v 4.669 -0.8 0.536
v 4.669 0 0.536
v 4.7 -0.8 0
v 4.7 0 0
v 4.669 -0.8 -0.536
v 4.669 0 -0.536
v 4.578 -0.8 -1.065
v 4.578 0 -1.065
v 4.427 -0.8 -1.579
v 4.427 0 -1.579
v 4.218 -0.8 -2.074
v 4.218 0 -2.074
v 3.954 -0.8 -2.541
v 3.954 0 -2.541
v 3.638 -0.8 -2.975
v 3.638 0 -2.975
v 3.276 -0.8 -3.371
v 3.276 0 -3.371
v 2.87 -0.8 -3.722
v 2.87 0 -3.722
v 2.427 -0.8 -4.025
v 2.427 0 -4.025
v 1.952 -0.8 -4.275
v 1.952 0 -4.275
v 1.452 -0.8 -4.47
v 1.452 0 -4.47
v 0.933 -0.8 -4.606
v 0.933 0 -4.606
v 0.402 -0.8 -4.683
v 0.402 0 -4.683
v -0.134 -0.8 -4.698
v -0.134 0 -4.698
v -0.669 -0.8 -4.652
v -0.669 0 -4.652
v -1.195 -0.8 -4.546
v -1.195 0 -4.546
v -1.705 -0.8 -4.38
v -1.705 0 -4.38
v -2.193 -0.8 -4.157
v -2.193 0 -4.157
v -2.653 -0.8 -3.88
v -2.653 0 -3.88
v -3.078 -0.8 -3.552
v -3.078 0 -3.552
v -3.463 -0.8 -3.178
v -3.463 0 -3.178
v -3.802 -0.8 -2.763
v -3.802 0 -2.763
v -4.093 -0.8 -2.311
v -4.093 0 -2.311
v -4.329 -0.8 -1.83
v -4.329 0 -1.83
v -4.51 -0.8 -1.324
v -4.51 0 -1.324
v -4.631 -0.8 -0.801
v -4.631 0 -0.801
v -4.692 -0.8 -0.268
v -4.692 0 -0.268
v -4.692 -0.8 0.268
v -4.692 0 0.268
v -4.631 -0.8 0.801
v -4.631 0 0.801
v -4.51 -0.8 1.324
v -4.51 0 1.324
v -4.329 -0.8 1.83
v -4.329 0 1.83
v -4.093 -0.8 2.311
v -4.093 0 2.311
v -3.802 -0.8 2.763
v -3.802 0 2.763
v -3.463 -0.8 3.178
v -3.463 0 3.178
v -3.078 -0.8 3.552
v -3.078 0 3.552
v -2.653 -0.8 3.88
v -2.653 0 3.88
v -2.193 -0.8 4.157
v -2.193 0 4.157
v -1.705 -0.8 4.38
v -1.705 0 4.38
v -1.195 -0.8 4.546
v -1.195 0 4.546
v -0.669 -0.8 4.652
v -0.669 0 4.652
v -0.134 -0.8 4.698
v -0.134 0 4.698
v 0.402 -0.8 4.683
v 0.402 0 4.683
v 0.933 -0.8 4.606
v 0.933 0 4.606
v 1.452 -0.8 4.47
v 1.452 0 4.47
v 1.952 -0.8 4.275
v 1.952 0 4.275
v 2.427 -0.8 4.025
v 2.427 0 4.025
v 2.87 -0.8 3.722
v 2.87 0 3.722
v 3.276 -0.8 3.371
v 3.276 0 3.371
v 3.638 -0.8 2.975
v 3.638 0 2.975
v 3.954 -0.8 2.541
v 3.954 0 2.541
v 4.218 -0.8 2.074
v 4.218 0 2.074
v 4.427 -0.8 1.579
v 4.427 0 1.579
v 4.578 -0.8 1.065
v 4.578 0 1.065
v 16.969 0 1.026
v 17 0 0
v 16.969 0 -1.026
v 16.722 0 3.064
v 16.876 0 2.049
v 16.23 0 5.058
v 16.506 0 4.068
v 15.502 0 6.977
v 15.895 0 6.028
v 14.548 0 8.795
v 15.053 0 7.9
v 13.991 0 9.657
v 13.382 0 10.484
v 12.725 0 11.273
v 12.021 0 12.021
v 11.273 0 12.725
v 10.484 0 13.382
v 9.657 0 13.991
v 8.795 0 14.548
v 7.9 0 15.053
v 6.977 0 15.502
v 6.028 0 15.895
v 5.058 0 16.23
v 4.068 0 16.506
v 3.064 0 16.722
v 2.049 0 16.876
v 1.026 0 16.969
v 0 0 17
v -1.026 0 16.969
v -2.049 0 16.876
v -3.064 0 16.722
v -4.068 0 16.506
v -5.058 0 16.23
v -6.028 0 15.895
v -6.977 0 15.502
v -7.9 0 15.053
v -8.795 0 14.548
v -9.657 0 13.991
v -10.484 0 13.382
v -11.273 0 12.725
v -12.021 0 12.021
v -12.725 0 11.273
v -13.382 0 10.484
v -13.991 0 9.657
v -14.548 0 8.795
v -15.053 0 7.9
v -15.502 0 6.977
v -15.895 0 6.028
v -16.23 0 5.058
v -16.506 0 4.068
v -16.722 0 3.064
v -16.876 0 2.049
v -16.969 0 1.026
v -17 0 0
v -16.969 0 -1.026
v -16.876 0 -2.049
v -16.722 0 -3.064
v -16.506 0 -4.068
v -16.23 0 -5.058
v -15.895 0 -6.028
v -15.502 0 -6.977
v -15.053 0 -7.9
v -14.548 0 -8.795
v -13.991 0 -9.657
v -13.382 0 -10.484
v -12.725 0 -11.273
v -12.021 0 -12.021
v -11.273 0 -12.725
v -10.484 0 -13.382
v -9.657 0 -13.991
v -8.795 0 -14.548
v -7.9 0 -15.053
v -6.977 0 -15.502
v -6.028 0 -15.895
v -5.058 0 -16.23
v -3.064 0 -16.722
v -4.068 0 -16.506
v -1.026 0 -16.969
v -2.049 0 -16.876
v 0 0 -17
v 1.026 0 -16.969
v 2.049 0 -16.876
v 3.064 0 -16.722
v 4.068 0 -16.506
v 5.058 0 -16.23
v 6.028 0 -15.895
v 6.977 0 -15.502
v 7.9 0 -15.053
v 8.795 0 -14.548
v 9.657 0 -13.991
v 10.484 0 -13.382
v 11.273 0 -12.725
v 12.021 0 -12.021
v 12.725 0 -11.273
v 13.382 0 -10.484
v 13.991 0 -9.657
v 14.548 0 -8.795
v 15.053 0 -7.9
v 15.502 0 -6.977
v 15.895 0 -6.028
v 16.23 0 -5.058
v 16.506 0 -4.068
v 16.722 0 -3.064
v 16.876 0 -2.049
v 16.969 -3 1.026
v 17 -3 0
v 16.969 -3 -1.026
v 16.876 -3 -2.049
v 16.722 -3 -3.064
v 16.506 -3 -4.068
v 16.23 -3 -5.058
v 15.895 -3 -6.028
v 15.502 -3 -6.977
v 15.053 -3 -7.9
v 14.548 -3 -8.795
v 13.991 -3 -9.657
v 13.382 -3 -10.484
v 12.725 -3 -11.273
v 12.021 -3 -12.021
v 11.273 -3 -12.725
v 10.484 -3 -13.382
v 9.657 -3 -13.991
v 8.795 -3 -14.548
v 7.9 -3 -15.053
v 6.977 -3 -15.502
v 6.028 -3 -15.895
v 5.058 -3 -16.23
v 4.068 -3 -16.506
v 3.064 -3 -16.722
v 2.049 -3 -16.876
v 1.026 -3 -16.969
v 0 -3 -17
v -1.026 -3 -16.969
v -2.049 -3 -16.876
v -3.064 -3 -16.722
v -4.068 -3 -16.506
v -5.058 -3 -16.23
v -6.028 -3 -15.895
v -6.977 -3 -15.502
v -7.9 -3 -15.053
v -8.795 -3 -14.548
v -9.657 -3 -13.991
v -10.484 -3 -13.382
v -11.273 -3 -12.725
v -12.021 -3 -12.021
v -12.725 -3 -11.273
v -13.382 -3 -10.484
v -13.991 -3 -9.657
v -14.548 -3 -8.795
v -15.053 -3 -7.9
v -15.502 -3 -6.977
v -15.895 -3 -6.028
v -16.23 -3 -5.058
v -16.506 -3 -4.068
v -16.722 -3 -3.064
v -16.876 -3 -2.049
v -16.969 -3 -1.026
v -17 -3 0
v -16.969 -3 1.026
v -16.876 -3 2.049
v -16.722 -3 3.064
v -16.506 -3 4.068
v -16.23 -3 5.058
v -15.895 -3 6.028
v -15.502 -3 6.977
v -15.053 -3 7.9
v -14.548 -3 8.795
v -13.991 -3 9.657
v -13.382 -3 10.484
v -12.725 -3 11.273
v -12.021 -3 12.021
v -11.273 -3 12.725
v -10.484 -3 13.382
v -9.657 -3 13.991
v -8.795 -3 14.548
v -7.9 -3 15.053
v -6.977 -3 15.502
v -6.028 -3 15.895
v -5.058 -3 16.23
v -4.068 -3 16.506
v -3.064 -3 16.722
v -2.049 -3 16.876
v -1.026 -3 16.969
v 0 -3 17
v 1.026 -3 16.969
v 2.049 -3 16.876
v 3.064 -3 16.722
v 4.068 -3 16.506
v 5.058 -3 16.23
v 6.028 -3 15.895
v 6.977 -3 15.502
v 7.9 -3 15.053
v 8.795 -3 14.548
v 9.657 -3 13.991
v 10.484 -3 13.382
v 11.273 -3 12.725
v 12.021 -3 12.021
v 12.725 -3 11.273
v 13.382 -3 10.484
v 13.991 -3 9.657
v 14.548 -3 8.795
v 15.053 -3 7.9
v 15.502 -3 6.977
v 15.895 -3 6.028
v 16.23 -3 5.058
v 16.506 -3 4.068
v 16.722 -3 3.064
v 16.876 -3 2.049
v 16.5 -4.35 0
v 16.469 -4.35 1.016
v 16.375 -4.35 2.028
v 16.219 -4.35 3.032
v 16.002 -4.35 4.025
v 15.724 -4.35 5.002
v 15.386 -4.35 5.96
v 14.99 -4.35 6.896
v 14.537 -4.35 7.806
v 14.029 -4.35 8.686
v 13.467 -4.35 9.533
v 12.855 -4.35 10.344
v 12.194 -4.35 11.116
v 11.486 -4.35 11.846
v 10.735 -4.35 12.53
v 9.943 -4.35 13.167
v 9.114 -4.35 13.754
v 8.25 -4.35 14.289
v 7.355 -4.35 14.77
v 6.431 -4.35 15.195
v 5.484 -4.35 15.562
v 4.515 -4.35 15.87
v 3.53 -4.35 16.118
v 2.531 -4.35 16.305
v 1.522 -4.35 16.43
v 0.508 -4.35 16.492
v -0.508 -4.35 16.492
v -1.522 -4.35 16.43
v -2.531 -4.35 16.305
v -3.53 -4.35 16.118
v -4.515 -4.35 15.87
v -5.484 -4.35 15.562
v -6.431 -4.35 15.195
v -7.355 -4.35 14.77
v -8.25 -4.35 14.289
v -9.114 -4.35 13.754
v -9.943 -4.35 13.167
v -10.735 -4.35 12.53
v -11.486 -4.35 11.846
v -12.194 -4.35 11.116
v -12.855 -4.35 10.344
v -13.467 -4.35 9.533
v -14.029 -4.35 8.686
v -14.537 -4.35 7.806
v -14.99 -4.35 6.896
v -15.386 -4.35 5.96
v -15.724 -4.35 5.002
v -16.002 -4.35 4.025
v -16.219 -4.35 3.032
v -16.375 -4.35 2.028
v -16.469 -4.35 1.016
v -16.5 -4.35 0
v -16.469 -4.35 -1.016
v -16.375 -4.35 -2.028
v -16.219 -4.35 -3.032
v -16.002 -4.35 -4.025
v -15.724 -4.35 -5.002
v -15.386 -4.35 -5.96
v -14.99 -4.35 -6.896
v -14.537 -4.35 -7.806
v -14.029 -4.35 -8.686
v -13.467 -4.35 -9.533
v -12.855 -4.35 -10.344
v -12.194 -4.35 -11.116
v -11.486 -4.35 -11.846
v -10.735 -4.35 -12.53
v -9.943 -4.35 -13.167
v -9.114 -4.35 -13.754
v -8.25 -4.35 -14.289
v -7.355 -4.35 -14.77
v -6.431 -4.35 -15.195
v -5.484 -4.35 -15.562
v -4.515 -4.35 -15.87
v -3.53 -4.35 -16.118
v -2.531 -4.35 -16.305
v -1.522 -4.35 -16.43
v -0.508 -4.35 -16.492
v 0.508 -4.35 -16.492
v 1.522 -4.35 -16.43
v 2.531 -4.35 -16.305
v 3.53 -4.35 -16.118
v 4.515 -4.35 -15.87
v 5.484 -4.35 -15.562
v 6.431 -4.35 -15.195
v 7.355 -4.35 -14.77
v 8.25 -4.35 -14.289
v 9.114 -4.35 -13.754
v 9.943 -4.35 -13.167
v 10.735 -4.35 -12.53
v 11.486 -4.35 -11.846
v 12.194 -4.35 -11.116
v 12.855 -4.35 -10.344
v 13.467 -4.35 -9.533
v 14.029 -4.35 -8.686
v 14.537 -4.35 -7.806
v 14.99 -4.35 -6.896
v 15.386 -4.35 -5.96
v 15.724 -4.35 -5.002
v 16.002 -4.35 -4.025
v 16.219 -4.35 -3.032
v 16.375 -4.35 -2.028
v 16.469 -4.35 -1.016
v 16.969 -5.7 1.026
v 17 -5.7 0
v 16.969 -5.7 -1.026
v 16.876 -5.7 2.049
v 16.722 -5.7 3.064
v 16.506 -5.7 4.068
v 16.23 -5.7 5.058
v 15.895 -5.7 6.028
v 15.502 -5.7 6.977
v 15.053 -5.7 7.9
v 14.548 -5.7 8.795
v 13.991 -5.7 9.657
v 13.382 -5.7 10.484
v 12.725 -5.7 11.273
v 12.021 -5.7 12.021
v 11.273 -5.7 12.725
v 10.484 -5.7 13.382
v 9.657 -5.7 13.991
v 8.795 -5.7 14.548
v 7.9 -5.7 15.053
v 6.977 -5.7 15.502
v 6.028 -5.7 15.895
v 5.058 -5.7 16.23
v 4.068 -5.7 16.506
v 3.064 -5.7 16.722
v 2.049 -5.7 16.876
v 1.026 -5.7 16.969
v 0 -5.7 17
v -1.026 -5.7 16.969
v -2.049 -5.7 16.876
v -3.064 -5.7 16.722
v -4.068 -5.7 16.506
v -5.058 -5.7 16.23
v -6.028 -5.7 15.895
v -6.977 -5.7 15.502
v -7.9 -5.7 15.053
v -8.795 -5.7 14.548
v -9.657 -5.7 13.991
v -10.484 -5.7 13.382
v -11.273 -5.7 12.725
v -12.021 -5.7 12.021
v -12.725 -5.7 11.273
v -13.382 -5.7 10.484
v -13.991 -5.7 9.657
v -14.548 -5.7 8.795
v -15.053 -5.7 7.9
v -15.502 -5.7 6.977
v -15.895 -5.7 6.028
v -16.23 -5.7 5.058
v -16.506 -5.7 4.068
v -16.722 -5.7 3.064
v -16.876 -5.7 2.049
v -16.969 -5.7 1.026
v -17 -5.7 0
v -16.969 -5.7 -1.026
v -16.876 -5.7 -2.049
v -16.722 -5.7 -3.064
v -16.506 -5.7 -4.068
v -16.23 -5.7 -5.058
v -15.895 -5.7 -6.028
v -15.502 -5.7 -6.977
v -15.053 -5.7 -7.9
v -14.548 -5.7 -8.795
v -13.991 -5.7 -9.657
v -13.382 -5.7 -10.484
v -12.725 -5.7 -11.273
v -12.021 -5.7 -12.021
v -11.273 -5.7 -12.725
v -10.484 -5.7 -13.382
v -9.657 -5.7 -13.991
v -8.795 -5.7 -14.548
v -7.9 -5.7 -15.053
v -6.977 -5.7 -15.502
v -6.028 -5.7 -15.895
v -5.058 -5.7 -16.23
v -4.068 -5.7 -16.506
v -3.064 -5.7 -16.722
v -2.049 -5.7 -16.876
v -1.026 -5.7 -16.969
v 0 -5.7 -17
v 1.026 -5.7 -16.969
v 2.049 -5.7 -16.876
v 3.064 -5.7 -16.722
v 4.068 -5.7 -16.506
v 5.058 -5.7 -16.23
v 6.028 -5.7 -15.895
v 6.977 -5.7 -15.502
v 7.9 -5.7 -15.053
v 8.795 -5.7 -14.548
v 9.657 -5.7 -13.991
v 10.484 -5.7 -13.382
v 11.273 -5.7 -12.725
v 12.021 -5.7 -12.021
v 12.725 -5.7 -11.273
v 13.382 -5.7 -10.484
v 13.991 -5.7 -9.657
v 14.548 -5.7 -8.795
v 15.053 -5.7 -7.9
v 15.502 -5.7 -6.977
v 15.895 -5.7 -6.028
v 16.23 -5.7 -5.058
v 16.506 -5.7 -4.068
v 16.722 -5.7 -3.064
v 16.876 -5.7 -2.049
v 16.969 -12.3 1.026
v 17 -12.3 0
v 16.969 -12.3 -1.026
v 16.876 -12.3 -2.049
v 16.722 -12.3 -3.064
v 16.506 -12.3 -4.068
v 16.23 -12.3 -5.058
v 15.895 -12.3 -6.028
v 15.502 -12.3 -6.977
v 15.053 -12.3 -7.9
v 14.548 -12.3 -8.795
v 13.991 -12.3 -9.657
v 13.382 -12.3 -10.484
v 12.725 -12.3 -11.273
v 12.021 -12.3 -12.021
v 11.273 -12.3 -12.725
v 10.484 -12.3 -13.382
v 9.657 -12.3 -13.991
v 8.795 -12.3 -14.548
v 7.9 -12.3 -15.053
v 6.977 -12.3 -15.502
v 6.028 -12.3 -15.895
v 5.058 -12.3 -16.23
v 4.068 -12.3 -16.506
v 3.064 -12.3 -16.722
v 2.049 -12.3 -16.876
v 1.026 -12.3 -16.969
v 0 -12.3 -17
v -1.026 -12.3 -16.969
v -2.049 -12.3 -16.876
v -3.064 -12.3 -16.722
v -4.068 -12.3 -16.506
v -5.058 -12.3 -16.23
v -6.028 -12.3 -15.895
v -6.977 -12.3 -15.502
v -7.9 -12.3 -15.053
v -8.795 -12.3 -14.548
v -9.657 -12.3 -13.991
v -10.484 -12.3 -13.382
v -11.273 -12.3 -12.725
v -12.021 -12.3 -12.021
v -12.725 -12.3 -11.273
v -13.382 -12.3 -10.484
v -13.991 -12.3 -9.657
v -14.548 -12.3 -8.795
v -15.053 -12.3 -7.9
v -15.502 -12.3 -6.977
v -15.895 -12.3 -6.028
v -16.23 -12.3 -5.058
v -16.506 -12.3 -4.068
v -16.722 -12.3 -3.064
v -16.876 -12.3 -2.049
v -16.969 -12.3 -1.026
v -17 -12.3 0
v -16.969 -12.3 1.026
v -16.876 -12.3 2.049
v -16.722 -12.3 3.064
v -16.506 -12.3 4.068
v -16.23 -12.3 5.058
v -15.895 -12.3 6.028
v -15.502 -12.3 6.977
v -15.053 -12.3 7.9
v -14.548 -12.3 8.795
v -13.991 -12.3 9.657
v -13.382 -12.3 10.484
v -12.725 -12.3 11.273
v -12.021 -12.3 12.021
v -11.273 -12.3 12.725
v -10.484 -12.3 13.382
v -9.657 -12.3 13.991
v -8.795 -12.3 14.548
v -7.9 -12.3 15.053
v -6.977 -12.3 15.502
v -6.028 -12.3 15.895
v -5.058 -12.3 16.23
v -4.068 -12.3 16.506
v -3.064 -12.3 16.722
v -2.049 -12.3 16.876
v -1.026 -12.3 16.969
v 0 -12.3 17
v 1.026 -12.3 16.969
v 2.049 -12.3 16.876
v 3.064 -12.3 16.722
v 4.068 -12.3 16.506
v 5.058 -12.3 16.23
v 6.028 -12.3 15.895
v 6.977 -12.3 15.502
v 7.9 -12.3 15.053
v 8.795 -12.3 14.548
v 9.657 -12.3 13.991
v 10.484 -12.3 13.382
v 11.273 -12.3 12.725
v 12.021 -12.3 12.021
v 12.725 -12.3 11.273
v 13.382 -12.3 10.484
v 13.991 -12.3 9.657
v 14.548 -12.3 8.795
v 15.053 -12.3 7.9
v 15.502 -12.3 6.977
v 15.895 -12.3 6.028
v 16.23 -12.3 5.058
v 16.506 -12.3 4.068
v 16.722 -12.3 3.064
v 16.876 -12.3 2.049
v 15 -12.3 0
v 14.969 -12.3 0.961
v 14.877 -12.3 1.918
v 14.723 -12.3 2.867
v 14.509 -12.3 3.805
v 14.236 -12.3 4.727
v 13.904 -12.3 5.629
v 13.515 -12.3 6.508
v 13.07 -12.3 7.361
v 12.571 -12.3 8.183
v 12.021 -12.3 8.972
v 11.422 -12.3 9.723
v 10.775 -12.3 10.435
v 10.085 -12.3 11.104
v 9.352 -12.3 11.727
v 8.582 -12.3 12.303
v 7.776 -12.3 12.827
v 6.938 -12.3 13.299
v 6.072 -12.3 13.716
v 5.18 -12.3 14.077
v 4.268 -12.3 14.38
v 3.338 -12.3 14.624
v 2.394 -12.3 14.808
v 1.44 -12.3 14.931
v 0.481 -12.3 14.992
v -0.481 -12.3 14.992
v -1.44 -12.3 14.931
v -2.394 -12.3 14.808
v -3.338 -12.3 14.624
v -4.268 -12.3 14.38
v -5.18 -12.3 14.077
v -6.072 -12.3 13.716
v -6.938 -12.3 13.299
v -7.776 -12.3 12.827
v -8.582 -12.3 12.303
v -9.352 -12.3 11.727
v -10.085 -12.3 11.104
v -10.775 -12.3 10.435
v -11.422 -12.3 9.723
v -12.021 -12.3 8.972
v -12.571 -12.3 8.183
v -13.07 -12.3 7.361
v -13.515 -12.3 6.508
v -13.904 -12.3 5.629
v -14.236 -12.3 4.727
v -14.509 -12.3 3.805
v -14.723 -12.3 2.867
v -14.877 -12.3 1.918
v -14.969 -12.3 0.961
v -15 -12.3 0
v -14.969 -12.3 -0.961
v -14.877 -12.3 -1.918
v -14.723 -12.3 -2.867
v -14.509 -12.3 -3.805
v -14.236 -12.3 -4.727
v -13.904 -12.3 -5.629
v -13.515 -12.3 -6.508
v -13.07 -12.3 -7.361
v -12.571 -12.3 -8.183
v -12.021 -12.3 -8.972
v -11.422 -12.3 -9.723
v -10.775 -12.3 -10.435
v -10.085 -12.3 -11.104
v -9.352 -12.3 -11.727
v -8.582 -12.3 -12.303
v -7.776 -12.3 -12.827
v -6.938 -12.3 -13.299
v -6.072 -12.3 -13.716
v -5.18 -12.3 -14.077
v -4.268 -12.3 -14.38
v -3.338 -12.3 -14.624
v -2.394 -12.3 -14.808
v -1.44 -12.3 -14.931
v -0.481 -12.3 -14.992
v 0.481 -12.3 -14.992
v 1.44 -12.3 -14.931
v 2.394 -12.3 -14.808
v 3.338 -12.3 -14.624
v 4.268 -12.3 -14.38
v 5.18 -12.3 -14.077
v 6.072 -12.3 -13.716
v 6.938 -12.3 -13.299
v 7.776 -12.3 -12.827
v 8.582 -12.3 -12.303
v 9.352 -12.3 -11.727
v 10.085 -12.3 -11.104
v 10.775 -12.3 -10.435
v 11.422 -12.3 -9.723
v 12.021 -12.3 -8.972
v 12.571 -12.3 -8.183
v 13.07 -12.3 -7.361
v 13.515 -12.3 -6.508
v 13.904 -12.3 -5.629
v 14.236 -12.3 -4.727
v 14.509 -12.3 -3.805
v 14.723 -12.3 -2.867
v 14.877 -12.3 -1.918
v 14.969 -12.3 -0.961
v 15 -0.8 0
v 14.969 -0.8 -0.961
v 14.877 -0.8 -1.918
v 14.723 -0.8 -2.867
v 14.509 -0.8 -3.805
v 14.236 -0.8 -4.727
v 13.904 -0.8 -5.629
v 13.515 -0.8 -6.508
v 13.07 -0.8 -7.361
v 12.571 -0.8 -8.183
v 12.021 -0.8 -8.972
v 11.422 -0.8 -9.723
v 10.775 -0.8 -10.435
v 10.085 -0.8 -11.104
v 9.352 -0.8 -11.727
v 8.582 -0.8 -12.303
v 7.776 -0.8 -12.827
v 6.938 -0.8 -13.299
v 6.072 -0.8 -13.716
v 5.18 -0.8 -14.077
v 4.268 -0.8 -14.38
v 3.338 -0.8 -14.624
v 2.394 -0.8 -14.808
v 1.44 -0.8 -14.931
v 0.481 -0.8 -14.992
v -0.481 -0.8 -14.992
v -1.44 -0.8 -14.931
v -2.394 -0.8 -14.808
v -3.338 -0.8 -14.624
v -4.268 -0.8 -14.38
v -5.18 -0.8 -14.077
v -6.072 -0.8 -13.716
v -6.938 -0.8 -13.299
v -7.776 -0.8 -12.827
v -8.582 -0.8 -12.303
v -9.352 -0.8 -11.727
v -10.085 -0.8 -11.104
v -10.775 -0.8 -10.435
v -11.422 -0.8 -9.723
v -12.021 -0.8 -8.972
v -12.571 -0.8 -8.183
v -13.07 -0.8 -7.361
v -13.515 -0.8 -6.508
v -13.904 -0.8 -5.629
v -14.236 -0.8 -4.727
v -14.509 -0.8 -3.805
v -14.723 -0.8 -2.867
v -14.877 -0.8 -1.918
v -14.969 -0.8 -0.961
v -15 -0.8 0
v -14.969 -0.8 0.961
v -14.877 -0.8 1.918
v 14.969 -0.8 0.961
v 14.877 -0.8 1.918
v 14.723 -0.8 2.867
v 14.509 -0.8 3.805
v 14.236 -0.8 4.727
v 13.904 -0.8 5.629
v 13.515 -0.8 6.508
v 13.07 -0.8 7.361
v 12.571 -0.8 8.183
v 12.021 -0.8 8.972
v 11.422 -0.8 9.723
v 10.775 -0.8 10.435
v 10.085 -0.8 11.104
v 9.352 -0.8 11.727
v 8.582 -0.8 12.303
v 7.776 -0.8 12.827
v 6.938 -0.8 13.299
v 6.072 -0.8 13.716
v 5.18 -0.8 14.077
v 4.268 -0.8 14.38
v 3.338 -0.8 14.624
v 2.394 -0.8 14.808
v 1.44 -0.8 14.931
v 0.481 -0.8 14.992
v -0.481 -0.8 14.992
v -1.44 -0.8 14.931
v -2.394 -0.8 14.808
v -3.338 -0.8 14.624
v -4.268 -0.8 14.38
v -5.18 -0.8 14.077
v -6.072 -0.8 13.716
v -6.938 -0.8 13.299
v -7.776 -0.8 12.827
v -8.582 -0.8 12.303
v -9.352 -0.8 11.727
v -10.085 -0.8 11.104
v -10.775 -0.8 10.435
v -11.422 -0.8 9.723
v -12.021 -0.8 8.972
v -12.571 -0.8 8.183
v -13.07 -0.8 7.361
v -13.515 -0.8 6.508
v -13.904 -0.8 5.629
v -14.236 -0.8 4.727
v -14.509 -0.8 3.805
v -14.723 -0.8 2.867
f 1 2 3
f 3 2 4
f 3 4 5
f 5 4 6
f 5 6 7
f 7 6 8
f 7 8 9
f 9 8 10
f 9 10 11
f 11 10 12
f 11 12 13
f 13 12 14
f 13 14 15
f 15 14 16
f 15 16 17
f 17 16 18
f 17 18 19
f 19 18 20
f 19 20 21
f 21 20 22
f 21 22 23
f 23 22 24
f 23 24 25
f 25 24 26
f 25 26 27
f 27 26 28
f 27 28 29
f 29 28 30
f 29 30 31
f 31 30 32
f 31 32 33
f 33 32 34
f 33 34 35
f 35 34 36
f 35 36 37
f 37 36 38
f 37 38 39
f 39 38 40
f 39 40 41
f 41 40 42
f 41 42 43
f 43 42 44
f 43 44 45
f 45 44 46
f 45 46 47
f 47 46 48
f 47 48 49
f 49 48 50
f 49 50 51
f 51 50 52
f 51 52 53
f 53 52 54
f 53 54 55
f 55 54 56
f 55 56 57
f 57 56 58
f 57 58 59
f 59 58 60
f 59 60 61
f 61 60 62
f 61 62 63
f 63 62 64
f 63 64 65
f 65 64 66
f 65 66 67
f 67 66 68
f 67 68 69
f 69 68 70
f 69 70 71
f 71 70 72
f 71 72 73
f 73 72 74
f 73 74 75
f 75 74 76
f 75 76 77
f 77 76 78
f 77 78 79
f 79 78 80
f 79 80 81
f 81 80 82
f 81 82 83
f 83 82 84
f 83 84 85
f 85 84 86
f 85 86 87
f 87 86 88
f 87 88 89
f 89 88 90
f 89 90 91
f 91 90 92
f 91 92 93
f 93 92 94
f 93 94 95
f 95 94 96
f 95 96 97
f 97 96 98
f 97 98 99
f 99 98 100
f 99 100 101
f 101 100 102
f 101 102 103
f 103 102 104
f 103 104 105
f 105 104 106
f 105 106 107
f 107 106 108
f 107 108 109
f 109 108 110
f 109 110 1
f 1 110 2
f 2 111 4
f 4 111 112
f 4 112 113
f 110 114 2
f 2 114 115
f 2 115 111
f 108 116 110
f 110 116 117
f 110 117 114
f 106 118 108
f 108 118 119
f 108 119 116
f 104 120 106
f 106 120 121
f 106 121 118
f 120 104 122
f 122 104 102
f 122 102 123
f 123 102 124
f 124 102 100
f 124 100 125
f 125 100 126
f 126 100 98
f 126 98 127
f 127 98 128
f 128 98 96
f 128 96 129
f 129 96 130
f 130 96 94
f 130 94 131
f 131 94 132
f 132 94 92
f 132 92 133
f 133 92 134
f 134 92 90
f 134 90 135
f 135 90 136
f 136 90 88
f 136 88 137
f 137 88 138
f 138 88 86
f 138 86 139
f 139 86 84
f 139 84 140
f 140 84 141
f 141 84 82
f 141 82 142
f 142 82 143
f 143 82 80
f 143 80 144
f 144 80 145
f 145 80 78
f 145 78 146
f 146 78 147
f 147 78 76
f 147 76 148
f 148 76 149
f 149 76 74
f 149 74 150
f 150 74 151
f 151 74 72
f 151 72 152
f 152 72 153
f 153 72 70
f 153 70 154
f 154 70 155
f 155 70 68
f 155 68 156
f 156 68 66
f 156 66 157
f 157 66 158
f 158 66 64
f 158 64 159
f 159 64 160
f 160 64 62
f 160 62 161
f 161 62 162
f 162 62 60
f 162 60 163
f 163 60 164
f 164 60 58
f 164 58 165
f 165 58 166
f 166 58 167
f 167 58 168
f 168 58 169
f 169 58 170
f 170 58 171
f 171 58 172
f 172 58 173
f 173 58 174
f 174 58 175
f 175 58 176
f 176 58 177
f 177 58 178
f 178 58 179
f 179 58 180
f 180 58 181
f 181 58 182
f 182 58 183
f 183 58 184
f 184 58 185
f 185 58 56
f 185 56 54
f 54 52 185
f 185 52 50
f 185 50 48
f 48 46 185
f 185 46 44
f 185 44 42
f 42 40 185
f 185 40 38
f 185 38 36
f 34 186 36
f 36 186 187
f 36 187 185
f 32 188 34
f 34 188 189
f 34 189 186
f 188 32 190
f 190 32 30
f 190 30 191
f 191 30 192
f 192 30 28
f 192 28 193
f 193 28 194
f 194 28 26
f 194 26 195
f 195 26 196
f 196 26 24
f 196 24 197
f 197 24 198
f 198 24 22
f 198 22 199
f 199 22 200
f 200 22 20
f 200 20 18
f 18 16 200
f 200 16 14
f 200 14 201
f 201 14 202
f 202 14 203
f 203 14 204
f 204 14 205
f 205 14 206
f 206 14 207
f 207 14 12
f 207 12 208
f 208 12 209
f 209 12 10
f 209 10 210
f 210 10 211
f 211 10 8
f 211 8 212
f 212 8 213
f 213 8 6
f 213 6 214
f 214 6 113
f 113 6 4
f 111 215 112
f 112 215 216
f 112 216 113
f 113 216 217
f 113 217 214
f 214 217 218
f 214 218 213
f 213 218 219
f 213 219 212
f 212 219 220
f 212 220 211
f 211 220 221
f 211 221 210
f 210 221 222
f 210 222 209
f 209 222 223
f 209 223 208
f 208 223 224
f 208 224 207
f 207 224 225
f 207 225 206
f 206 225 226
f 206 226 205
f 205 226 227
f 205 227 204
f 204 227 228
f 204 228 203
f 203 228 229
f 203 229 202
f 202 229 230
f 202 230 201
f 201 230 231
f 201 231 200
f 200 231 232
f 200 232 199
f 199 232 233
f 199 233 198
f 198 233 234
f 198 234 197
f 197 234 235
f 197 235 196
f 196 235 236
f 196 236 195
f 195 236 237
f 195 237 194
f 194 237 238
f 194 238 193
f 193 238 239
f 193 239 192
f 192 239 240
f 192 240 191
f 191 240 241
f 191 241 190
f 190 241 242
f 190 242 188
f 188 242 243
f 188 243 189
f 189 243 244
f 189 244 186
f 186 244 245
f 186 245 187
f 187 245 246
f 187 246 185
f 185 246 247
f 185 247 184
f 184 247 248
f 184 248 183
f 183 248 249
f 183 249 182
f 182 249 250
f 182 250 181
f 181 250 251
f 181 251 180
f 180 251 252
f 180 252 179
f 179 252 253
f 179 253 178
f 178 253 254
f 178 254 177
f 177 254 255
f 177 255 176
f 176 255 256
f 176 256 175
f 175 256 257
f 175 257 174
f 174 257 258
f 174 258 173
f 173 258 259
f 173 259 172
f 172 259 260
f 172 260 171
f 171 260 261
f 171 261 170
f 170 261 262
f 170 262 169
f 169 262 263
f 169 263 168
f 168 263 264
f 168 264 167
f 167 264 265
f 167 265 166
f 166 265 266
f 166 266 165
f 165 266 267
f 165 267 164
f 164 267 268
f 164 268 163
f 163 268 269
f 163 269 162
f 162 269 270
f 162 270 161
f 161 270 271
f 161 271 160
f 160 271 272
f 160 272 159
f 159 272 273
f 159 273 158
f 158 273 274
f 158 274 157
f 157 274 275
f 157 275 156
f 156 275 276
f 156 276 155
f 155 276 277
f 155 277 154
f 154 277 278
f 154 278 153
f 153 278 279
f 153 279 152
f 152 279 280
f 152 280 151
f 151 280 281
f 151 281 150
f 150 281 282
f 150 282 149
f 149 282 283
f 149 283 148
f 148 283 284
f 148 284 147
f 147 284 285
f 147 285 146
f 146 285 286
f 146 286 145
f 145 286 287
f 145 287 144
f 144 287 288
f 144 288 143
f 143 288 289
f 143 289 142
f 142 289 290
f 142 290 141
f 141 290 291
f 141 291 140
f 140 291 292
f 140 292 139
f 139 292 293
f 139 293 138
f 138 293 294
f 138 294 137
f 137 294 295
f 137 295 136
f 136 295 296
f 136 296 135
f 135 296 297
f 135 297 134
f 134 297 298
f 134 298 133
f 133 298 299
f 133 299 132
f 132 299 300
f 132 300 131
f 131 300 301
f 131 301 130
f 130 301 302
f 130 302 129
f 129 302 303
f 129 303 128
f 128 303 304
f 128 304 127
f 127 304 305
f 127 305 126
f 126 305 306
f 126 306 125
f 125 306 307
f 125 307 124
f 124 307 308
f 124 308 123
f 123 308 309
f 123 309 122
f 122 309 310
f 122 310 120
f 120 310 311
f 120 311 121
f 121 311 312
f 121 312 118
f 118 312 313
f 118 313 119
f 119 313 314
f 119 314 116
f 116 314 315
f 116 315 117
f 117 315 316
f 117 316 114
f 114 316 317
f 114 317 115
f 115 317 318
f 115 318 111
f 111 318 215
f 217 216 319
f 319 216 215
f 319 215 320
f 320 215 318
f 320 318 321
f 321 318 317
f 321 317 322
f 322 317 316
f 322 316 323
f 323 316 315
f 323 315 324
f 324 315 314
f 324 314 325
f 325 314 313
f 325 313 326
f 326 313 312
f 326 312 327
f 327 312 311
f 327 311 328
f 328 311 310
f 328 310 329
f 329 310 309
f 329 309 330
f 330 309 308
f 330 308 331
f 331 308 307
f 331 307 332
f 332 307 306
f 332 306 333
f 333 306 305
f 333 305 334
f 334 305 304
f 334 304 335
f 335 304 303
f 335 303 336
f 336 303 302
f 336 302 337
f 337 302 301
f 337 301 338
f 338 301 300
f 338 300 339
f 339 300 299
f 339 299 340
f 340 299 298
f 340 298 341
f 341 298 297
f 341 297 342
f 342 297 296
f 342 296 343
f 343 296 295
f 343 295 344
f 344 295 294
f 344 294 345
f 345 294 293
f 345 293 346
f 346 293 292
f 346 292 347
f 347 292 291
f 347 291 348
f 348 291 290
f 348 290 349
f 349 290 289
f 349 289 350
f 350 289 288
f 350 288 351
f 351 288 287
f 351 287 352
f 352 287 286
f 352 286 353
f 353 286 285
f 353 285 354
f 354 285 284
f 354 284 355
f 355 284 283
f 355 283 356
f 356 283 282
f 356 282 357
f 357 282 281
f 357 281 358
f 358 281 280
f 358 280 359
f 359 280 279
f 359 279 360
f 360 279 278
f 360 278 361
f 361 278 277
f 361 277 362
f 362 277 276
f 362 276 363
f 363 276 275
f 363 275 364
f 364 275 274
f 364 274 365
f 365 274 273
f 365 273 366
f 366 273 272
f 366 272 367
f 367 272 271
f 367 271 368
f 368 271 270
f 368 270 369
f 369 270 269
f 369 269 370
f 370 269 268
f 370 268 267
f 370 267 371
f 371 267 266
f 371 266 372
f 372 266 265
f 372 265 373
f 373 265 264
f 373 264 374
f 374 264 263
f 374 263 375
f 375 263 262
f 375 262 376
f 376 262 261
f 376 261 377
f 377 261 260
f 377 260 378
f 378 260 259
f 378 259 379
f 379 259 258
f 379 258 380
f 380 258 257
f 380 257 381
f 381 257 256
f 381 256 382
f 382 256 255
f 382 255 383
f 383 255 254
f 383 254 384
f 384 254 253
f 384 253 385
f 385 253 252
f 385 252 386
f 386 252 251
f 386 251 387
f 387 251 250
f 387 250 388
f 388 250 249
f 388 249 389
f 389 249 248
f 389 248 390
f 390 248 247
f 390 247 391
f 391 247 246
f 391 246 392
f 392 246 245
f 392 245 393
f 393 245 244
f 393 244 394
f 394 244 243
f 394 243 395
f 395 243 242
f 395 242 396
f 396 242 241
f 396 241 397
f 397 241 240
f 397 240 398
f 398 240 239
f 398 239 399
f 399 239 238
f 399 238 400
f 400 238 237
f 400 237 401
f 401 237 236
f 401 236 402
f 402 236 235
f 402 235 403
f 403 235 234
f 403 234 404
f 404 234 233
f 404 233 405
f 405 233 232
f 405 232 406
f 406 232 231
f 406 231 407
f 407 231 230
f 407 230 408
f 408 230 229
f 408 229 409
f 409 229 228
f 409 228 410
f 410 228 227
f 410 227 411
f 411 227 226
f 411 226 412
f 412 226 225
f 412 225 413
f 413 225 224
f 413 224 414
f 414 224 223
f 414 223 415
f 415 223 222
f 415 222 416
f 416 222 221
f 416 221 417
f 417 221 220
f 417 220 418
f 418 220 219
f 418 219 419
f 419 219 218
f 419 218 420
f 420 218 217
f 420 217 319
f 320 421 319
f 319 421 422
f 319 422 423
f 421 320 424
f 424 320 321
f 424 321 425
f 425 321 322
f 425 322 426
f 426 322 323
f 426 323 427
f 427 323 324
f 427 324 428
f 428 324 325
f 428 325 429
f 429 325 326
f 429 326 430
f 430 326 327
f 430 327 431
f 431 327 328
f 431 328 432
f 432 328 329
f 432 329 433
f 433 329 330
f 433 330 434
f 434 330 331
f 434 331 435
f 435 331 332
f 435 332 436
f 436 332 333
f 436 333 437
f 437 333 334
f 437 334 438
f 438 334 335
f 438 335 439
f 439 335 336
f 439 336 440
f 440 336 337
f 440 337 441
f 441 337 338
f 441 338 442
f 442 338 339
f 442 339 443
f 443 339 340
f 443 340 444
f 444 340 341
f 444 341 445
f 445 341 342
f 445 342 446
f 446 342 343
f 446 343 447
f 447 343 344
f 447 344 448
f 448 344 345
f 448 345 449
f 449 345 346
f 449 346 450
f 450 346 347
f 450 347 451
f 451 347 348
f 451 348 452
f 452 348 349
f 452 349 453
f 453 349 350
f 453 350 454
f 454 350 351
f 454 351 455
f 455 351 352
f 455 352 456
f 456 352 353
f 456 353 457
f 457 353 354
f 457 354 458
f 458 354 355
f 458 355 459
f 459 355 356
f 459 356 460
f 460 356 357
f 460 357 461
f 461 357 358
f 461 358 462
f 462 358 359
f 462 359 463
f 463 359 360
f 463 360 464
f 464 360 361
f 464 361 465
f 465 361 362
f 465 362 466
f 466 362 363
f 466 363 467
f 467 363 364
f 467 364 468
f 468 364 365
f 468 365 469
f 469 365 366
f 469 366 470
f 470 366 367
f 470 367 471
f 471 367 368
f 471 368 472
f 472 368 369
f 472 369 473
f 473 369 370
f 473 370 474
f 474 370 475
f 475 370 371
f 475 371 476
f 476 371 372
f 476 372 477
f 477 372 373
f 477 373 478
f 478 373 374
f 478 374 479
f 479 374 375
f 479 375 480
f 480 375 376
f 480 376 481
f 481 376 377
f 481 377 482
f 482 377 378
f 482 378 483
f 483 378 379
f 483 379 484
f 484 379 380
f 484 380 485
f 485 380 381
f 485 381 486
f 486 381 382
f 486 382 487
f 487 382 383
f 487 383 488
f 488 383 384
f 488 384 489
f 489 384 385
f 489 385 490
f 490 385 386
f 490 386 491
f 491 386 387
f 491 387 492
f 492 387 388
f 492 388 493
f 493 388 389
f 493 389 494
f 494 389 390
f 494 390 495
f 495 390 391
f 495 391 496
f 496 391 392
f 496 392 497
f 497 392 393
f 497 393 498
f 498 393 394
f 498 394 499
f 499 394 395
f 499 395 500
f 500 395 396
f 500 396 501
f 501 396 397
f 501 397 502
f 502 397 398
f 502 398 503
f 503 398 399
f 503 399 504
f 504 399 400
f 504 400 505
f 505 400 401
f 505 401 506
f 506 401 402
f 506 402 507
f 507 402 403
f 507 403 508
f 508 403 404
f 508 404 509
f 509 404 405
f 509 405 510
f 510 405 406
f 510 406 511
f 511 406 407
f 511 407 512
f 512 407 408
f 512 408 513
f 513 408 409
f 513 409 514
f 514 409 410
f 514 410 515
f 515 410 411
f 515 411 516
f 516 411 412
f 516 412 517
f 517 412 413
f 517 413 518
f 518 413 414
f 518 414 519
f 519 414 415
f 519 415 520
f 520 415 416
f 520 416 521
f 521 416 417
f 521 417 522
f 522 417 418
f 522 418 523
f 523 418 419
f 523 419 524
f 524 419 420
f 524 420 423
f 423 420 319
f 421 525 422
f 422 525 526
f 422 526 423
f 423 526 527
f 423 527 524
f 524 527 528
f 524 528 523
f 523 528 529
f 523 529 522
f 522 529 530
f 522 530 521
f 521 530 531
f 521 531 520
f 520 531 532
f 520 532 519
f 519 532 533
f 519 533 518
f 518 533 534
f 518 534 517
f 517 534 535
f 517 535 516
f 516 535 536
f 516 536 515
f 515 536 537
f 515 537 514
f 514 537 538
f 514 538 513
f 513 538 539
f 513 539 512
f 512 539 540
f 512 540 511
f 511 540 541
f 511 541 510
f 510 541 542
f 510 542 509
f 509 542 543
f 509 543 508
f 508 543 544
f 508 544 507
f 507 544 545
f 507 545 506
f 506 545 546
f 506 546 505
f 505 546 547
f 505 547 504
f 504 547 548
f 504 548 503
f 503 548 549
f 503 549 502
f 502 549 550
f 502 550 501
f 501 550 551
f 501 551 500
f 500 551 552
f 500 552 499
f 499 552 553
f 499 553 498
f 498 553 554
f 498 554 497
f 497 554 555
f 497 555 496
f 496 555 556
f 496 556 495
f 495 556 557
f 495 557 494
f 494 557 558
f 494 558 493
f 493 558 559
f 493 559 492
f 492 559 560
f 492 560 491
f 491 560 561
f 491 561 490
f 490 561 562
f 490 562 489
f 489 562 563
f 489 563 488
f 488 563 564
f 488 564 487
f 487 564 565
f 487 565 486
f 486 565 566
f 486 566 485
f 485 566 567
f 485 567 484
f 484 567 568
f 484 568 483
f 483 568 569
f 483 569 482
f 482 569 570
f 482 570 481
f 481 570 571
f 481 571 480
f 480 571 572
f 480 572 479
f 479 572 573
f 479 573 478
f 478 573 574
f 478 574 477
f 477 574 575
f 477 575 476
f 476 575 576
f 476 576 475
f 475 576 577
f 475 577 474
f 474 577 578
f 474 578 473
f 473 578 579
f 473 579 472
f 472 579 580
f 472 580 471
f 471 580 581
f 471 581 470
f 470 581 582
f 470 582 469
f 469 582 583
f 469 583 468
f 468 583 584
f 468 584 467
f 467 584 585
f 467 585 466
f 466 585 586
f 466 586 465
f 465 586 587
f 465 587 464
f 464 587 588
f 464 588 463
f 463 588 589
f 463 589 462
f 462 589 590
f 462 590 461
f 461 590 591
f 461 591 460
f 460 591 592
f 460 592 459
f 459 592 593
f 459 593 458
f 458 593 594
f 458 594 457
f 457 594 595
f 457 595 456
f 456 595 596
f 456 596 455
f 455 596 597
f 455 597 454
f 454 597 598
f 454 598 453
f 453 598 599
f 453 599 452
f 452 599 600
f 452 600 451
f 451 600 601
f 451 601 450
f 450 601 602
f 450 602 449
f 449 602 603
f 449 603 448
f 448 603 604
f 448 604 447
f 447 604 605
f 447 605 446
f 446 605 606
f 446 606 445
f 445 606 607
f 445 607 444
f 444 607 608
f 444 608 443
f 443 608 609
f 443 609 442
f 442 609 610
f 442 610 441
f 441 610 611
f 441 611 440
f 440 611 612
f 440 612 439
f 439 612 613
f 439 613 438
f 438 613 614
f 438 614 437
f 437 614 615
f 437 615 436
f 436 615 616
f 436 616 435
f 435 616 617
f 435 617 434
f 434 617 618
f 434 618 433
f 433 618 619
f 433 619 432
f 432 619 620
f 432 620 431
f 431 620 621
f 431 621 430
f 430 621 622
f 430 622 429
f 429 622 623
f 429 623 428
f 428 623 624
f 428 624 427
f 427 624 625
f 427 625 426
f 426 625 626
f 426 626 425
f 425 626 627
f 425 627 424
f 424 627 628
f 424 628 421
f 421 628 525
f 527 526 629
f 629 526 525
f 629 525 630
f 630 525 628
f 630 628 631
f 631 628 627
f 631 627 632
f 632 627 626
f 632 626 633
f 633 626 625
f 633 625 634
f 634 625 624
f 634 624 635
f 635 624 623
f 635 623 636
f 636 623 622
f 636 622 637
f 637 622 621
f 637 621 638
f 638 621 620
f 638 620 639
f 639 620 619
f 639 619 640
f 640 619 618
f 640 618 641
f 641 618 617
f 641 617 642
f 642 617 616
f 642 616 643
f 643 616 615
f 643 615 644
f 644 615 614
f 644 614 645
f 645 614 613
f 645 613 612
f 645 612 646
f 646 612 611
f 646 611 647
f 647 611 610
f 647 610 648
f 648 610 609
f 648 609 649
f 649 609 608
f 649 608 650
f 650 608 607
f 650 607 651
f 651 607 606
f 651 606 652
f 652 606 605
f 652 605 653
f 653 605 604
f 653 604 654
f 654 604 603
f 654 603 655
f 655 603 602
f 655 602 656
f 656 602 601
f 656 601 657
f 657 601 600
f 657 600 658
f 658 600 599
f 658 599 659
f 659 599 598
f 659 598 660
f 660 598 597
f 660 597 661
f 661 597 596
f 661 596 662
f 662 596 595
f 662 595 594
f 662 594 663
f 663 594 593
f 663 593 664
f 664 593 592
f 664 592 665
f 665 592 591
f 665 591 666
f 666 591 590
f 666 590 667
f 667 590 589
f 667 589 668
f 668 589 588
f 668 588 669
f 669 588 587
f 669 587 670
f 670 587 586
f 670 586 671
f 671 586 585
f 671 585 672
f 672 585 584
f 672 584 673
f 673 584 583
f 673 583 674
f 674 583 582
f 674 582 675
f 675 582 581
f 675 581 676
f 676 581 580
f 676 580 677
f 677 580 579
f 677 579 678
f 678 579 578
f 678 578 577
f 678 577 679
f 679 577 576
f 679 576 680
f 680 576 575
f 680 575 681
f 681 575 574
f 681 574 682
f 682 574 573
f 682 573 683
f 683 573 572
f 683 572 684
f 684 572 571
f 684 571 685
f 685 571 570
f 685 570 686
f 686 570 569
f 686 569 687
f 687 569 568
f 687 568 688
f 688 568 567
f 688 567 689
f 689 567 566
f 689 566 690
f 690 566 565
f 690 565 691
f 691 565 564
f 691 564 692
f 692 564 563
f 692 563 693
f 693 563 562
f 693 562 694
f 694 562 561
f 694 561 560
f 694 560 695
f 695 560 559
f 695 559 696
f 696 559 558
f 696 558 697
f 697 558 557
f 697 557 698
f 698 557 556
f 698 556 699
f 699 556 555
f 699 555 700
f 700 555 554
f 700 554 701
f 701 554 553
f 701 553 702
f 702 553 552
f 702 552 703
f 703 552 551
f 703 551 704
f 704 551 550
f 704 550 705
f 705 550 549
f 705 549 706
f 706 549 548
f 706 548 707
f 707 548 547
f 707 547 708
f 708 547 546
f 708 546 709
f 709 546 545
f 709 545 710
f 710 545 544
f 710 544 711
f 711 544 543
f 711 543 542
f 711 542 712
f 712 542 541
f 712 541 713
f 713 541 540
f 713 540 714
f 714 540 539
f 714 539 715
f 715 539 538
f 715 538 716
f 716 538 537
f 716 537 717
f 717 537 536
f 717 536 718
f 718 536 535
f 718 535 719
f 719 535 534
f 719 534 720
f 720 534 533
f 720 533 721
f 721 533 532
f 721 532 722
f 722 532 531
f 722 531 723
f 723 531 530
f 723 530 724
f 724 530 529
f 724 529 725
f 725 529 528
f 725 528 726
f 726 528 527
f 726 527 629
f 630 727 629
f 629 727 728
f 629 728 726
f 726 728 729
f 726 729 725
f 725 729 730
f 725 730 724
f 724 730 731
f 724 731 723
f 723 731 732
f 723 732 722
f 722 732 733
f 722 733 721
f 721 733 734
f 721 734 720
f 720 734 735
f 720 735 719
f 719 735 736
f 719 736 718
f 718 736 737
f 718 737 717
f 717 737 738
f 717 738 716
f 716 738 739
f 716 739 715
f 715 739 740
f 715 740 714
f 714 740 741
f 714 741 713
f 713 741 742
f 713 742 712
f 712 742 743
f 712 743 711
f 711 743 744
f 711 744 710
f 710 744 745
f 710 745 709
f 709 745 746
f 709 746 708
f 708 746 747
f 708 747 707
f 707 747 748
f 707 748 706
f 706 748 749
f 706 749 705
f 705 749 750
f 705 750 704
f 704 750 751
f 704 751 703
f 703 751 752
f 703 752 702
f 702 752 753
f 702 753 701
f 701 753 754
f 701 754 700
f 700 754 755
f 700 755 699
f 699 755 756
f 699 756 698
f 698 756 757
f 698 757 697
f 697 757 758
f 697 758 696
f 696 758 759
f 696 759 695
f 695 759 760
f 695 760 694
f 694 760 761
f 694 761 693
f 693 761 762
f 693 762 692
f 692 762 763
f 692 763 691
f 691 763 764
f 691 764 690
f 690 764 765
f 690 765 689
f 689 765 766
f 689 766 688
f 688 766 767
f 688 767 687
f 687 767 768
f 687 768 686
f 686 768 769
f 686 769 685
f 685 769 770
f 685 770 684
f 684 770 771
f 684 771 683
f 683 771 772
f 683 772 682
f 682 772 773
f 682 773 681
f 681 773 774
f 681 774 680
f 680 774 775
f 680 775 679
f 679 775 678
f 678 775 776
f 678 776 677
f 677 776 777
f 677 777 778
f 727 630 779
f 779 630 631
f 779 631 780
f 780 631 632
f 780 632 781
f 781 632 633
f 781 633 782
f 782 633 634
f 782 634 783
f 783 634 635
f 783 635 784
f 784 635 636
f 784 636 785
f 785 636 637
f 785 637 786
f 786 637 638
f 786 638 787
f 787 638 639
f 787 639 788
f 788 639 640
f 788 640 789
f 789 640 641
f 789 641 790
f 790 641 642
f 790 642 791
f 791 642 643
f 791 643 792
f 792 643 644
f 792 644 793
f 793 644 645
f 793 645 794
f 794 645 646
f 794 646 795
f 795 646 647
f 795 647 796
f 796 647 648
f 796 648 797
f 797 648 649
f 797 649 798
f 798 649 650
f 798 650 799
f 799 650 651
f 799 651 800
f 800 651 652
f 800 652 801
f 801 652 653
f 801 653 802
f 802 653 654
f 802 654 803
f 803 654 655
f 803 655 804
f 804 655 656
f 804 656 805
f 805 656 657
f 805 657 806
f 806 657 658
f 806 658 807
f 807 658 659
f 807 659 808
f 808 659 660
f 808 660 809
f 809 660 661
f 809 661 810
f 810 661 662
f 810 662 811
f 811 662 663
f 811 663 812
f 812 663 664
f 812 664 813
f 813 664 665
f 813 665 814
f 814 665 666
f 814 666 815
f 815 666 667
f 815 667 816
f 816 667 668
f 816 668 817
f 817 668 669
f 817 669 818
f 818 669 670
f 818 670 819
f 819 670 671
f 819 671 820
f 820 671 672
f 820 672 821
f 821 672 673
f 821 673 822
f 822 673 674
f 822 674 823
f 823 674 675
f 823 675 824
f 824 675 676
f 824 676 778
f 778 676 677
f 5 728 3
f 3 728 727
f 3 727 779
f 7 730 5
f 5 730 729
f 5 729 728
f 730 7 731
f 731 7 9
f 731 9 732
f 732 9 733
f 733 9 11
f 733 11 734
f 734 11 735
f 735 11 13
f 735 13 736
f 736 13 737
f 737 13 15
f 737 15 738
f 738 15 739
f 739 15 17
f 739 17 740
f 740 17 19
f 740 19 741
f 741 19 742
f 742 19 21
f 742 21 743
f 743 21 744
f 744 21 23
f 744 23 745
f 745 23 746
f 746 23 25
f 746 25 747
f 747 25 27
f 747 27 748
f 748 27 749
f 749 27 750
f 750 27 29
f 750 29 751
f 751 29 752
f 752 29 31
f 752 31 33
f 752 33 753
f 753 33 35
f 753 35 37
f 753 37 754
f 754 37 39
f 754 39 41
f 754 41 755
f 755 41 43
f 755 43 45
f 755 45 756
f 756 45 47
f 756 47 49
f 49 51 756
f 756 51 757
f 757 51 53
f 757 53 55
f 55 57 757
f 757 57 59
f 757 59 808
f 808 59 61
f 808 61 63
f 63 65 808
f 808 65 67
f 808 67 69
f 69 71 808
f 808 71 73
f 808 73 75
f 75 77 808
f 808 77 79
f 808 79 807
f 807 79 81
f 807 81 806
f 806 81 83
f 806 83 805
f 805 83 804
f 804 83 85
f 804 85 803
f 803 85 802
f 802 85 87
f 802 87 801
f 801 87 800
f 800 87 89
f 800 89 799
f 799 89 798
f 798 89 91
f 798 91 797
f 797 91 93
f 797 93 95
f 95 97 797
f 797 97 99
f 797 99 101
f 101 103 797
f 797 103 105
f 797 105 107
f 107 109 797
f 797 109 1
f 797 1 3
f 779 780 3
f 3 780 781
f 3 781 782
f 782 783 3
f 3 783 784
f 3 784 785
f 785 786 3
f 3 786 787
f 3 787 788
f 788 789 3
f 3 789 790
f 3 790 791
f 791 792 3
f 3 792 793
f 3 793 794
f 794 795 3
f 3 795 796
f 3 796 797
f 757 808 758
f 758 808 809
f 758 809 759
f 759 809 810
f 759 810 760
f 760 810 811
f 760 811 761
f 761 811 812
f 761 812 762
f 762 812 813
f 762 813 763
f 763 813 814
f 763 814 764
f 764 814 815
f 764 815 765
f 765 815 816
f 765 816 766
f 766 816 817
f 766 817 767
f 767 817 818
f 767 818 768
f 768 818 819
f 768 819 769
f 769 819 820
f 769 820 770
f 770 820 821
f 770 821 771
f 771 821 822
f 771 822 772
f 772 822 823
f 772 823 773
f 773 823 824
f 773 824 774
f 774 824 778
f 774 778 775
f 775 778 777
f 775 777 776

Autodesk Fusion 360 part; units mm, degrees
sketch "Sketch1" plane through (0, 0, 0) normal (0, 0, 1) x (1, 0, 0)
  line L0 (0, 0) -> (17, 0)
  line L1 (17, 0) -> (17, -3)
  line L2 (17, -3) -> (17, -5.7)
  line L3 (17, -5.7) -> (17, -12.3)
  line L4 (17, -12.3) -> (15, -12.3)
  line L5 (15, -12.3) -> (15, -0.8)
  line L6 (17, -3) -> (17, -4.35) construction
  line L7 (17, -4.35) -> (16.5, -4.35) construction
  line L8 (17, -3) -> (16.5, -4.35)
  line L9 (16.5, -4.35) -> (17, -5.7)
  line L10 (0, 0) -> (0, -0.8)
  line L11 (0, -0.8) -> (15, -0.8)
  dimension "d1" = 17
  dimension "d2" = 3
  dimension "d4" = 2.7
  dimension "d5" = 6.6
  dimension "d6" = 2
  dimension "d8" = 1.35
  dimension "d9" = 0.5
  dimension "d10" = 15
  dimension "d12" = 17
  dimension "d19" = 0.8
revolve "Revolve1" add sketch "Sketch1" angle 360 about axis through (0, 0, 0) along (0, -1, 0) contours L0 L1 L3 L4 L5 L8 L9 L10 L11
sketch "Sketch2" plane through (0, 0, 0) normal (0, 1, 0) x (-1, 0, 0)
  circle A0 centre (0, 0) radius 17
  circle A1 centre (0, 0) radius 16.575
  circle A2 centre (0, 0) radius 4.7
  dimension "d14" = 34
  dimension "d15" = 33.15
  dimension "d16" = 9.4
extrude "Extrude1" cut sketch "Sketch2" against normal blind 5 contours A2
equation "d15 = d14 - 0.85 mm"
